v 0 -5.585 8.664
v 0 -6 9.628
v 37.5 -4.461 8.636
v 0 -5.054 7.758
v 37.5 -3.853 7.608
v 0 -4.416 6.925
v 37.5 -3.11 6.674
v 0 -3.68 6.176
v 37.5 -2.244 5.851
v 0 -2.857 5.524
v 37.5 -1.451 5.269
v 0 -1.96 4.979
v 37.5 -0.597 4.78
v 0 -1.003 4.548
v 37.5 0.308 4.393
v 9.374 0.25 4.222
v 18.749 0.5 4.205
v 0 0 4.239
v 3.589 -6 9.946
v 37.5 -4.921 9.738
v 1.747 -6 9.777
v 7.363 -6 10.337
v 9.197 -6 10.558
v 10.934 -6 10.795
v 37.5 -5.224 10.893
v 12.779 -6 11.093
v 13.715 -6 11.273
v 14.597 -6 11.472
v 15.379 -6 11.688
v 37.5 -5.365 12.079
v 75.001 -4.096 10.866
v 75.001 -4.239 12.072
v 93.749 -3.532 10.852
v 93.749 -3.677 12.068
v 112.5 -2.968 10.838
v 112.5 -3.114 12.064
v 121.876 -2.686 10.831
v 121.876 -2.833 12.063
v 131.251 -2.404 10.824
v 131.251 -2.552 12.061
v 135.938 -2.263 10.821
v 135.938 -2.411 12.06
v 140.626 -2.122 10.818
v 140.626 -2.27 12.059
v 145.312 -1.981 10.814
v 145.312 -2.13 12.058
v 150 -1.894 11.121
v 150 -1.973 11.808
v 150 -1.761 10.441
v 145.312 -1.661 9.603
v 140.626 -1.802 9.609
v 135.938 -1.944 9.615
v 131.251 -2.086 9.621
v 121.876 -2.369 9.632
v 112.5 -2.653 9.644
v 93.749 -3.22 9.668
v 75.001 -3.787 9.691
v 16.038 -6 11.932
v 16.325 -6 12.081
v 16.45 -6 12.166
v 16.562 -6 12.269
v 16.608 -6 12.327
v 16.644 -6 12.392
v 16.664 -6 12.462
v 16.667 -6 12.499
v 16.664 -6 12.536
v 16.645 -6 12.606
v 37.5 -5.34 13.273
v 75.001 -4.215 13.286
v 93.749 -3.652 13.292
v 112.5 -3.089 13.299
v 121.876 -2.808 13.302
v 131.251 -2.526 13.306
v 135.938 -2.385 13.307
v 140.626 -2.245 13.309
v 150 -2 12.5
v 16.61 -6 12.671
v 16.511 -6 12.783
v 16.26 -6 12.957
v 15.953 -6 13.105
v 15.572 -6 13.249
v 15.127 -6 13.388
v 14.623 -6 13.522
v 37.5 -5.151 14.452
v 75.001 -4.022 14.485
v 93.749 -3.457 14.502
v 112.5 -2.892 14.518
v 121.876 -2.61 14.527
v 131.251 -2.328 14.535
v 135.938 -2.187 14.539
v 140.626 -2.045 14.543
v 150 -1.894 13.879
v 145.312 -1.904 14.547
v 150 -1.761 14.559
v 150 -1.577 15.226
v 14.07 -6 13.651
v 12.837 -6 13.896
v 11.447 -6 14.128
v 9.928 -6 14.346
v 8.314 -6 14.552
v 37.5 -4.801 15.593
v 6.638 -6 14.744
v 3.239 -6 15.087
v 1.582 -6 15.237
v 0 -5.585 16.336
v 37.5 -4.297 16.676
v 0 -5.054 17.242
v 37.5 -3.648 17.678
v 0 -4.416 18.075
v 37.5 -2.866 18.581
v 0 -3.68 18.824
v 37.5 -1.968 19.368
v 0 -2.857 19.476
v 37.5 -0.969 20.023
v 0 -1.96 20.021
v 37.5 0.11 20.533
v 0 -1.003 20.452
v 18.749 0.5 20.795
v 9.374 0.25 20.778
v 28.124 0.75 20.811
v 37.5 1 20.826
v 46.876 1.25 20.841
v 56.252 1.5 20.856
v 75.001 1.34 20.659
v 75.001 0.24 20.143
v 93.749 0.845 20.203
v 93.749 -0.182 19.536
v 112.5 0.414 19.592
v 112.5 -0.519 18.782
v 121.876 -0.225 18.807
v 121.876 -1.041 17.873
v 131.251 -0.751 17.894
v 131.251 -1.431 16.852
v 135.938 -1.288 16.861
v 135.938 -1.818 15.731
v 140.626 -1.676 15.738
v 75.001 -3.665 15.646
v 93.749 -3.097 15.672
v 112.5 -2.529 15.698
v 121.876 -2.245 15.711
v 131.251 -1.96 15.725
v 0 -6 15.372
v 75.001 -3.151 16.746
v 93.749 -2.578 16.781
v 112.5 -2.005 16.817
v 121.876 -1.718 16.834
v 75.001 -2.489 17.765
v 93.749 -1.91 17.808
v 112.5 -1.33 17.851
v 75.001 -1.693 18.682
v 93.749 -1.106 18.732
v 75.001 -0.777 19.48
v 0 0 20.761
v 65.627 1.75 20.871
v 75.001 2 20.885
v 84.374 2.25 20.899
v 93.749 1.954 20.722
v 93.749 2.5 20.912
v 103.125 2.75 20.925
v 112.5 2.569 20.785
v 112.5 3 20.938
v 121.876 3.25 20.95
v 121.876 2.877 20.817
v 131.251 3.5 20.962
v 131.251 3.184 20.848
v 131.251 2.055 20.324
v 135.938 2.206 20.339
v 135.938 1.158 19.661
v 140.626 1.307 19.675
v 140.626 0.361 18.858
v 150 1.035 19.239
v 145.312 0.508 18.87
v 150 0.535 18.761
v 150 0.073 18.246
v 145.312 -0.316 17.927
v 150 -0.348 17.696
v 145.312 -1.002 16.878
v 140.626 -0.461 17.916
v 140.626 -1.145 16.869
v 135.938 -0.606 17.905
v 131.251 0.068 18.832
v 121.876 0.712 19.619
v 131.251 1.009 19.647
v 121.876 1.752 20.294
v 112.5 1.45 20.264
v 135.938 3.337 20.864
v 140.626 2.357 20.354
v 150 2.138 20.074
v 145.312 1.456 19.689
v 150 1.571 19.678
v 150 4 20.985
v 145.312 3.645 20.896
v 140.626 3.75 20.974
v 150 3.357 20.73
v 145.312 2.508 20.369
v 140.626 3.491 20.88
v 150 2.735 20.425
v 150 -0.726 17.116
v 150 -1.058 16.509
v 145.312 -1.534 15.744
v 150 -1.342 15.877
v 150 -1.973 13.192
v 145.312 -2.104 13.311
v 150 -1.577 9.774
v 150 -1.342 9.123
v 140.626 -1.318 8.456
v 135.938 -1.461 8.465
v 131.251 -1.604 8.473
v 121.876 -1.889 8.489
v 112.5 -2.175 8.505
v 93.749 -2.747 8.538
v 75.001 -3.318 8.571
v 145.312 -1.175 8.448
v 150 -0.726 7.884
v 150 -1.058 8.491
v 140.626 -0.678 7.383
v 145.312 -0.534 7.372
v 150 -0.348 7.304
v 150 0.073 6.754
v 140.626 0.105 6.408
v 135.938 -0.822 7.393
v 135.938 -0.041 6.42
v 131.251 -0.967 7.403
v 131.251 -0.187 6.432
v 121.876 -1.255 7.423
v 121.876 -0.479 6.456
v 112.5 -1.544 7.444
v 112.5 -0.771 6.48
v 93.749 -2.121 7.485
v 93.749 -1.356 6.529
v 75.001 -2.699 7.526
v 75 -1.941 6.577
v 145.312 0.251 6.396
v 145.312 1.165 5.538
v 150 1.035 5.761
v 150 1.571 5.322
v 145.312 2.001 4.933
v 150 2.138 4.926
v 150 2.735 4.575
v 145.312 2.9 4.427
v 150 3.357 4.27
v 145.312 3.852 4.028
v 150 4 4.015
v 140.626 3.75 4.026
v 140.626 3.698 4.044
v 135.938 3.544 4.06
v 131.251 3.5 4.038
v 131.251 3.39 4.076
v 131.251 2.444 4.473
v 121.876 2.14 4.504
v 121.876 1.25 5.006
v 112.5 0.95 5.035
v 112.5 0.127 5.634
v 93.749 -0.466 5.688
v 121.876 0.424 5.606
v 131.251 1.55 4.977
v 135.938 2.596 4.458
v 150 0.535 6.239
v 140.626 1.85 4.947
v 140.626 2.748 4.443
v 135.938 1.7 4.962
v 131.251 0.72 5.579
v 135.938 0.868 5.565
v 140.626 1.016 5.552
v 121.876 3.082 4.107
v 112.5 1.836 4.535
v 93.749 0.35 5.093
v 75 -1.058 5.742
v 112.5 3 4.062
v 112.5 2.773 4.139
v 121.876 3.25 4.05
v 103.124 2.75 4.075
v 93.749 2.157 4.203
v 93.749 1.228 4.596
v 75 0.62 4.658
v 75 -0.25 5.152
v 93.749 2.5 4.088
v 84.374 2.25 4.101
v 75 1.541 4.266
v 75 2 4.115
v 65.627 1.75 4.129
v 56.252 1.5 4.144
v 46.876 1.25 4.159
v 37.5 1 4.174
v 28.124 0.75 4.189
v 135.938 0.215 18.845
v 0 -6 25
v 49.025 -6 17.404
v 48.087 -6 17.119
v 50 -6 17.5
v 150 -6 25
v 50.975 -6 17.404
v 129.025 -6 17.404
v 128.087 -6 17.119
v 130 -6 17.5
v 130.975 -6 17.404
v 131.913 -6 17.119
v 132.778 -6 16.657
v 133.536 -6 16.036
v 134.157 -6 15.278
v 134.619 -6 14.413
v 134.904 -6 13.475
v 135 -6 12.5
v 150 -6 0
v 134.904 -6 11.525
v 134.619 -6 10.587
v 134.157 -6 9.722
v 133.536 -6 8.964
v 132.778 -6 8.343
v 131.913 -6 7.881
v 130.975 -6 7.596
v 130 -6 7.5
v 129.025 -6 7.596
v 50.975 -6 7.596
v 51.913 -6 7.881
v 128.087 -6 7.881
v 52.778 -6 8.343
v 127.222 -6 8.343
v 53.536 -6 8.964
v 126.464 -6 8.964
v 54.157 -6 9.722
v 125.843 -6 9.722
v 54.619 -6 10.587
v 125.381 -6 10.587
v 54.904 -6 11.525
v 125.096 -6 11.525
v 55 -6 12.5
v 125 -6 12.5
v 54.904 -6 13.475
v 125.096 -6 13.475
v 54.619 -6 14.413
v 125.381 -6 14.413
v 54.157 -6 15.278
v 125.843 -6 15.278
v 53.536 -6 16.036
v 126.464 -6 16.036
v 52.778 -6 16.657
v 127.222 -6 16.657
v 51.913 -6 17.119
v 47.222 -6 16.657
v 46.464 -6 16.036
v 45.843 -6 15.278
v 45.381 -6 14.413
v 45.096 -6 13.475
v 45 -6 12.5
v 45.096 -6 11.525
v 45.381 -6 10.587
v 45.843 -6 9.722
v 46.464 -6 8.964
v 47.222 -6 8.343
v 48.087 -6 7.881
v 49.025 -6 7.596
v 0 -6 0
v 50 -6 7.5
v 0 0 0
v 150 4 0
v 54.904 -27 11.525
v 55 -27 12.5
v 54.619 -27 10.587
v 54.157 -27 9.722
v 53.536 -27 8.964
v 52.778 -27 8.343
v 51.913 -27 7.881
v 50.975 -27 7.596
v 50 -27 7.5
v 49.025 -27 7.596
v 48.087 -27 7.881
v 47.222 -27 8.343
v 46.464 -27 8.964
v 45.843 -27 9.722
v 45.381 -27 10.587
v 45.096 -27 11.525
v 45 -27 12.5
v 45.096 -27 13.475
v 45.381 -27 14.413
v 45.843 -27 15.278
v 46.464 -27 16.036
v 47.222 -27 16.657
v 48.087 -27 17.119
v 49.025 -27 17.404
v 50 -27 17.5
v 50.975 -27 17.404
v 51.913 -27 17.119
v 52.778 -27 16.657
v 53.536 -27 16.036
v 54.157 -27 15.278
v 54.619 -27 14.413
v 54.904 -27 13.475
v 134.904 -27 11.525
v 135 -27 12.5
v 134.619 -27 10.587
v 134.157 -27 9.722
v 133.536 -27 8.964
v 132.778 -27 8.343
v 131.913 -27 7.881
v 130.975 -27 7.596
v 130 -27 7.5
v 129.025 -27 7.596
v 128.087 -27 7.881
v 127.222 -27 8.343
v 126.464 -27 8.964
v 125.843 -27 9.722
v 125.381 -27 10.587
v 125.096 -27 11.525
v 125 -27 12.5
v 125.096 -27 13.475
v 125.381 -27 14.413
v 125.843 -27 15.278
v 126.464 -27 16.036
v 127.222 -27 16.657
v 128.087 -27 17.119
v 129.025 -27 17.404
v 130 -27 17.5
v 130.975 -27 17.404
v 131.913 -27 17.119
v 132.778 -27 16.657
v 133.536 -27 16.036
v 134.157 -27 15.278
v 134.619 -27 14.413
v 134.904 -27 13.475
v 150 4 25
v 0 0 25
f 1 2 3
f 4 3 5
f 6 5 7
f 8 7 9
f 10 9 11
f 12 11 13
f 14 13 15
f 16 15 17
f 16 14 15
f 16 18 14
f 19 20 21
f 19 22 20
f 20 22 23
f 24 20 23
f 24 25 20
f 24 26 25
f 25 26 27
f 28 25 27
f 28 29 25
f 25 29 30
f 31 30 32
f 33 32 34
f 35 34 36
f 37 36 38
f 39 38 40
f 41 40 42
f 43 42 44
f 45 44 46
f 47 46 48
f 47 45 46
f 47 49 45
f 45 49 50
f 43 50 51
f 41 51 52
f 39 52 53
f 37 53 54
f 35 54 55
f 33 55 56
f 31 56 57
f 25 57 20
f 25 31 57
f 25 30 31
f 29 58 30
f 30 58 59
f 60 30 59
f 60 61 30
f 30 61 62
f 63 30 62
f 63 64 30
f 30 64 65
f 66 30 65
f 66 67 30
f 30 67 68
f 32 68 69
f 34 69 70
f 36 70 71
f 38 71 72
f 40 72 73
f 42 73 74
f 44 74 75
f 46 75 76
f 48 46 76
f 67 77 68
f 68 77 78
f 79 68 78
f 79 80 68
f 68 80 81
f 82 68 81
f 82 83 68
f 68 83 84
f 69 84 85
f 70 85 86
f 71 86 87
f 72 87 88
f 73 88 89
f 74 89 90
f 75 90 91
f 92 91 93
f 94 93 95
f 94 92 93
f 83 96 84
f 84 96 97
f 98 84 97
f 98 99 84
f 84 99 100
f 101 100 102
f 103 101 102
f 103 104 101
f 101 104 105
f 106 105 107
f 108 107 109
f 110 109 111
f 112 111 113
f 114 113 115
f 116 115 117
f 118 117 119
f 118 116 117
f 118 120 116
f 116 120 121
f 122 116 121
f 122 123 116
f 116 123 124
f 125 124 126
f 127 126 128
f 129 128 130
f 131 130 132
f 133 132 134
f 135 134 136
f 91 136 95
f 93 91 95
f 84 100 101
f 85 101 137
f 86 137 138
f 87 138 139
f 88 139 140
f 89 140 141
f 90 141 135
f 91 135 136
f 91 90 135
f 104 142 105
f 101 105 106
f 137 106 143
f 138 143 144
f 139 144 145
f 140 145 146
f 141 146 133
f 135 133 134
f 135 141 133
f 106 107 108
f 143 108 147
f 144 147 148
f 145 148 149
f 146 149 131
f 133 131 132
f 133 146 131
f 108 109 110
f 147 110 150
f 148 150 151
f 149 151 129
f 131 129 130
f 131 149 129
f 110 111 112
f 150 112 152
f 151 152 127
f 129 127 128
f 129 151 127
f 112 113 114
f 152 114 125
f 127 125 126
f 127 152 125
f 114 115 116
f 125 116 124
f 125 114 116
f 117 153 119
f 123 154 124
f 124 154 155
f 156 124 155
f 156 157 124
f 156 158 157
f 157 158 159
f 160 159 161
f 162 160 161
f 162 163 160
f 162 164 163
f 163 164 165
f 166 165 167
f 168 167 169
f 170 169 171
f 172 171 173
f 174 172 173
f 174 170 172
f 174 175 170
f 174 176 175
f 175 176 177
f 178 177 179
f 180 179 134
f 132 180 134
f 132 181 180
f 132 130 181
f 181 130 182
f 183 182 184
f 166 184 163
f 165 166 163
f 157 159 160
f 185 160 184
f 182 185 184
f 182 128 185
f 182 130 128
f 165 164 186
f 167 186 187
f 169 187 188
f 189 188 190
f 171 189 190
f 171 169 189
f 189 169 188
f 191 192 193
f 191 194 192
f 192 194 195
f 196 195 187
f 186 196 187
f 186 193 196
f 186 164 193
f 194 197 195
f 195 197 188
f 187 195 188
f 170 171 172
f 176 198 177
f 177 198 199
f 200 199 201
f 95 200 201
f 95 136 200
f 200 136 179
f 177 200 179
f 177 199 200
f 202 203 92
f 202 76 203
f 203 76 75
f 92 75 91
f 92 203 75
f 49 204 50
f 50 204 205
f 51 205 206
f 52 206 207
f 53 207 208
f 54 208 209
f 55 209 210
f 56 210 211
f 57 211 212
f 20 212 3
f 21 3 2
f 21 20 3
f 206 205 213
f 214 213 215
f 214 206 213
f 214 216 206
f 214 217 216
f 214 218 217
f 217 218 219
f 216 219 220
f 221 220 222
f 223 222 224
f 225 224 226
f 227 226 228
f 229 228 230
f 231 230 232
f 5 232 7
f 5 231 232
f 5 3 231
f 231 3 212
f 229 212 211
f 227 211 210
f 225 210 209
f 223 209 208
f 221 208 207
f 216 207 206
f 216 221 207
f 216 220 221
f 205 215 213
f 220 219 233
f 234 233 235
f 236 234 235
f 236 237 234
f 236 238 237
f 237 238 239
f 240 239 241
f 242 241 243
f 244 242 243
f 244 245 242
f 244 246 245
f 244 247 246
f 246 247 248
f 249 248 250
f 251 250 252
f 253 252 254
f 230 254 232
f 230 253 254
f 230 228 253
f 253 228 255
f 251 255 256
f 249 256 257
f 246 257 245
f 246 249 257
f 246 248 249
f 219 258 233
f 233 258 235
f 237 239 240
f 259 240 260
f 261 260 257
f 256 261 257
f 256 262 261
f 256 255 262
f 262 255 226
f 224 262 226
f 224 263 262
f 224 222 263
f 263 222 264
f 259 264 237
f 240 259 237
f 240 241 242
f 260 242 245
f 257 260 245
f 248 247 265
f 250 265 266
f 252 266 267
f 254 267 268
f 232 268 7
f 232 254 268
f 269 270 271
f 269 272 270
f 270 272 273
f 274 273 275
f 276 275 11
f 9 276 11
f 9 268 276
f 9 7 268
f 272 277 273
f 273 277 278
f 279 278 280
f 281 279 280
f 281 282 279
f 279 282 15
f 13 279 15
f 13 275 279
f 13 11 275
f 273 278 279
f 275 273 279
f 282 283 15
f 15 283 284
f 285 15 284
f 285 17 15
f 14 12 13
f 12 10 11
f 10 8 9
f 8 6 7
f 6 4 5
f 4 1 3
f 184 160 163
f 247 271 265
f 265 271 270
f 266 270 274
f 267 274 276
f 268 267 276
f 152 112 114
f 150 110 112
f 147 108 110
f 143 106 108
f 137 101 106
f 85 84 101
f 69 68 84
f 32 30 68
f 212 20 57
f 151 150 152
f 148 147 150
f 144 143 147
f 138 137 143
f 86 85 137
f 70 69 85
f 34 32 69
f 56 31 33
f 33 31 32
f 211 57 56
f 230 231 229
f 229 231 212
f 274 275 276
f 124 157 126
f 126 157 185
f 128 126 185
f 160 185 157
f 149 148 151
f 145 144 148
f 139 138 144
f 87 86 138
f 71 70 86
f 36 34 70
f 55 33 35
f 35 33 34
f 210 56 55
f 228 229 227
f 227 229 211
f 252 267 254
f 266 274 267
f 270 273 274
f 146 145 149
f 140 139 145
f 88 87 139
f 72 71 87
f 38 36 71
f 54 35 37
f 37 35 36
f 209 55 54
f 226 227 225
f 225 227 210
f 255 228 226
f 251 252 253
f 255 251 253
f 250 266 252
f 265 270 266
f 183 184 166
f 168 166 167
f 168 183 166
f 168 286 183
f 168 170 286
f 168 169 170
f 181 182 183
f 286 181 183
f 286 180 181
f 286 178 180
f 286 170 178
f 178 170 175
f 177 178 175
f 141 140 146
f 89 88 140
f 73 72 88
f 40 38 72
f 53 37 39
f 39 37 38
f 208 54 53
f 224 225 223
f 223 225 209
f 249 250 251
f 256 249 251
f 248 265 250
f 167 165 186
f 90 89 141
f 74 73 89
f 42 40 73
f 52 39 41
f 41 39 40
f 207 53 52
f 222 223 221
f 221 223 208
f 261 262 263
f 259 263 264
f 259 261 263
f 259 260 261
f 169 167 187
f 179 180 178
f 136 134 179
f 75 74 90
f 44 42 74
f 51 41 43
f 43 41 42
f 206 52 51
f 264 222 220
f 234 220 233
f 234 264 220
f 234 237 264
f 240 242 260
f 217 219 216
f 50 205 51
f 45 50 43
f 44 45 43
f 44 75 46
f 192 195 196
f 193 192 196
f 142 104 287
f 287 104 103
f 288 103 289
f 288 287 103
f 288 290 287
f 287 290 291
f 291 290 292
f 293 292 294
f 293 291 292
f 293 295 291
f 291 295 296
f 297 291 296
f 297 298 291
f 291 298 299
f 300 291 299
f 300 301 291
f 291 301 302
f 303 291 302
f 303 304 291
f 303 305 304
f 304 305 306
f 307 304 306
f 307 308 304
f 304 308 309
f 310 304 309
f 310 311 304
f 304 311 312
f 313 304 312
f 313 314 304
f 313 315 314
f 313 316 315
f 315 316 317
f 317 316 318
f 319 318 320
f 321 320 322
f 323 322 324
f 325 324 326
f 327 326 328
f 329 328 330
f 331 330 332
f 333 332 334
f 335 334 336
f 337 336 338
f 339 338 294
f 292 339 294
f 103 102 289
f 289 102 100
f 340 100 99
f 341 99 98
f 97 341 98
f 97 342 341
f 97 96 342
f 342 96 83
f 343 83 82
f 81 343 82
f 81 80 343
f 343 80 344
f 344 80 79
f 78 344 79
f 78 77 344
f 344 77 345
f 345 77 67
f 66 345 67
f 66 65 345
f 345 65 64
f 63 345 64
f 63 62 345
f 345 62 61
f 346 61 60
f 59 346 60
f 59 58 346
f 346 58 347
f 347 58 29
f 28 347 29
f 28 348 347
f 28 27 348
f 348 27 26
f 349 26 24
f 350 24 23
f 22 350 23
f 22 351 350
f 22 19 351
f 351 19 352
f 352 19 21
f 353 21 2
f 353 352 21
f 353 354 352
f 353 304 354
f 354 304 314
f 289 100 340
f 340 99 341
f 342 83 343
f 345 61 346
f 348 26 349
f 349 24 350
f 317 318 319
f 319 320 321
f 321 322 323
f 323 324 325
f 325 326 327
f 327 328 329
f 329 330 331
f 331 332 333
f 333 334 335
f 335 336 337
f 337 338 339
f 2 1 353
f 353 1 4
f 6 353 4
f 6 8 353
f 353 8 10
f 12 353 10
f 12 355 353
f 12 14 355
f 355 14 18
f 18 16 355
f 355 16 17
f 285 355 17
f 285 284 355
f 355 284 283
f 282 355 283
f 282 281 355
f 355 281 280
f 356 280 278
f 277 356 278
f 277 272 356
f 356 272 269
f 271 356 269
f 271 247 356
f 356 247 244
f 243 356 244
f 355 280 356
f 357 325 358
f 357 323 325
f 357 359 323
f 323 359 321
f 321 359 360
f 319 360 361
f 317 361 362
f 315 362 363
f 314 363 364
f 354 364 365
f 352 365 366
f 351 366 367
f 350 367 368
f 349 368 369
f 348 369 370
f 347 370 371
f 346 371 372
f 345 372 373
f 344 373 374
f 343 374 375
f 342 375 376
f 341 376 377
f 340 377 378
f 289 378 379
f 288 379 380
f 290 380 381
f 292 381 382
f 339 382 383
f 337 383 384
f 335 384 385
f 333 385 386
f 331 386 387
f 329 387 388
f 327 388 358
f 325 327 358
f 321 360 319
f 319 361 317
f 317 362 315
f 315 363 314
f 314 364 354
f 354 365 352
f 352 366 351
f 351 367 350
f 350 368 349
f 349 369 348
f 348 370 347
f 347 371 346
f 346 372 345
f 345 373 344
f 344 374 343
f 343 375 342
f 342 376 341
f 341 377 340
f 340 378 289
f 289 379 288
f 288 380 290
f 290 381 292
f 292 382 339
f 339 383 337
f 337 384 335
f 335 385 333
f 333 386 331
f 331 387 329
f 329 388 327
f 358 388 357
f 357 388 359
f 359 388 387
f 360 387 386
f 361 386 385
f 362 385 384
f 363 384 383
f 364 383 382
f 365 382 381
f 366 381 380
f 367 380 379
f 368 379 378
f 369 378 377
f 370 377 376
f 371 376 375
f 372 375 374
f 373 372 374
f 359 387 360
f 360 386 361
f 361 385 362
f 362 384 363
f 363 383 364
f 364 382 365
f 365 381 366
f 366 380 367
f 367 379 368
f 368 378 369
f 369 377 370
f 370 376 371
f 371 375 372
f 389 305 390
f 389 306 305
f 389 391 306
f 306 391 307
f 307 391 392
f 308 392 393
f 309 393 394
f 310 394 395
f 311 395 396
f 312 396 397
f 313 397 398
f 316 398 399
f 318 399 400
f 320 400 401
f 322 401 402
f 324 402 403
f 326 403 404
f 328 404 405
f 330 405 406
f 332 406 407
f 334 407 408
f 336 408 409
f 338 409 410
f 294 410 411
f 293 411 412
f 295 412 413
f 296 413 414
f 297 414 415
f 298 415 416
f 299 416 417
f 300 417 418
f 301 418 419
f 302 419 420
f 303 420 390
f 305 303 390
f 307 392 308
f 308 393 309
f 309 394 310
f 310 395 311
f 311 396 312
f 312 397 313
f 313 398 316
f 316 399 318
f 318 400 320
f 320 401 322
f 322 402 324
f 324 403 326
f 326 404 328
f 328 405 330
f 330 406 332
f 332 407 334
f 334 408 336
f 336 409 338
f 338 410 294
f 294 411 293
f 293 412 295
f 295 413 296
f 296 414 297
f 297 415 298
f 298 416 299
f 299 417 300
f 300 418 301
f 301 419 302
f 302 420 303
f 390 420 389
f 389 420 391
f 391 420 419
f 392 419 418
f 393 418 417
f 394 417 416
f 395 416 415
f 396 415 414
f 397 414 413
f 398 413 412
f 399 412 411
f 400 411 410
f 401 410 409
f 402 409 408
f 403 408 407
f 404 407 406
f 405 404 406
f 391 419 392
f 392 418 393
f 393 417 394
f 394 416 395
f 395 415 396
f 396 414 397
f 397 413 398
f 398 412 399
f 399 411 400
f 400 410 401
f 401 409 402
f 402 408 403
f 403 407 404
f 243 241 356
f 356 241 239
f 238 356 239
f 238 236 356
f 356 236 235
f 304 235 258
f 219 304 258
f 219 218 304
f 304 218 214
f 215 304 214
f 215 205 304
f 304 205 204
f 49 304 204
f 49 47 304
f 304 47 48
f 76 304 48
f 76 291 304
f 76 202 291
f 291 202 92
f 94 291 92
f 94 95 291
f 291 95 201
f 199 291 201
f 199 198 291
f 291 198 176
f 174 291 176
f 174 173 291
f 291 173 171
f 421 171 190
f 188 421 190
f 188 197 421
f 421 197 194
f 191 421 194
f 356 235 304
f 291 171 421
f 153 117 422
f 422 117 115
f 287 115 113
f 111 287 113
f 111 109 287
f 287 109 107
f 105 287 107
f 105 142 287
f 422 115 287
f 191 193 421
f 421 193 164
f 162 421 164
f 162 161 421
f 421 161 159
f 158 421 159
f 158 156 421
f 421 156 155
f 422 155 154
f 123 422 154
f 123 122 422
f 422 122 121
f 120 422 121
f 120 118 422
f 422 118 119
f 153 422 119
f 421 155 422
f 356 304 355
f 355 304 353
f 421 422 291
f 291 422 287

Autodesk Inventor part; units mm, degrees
ref_plane "YZ Plane" through (0, 0, 0) normal (1, 0, 0) x (0, 1, 0)
ref_plane "XZ Plane" through (0, 0, 0) normal (0, 1, 0) x (-1, 0, 0)
ref_plane "XY Plane" through (0, 0, 0) normal (0, 0, 1) x (1, 0, 0)
sketch "草圖1" plane through (0, 0, 0) normal (0, 0, 1) x (1, 0, 0)
  line L0 (0, 0) -> (150, 4)
  line L1 (150, 4) -> (150, -6)
  line L2 (150, -6) -> (0, -6)
  line L3 (0, -6) -> (0, 0)
  dimension "d0" = 10
  dimension "d1" = 6
  dimension "d2" = 150
extrude "擠出1" add sketch "草圖1" along normal blind 25
sketch "草圖2" plane through (0, -6, 0) normal (0, -1, 0) x (1, 0, 0)
  circle A0 centre (50, 12.5) radius 5
  circle A1 centre (130, 12.5) radius 5
  line L0 (0, 25) -> (150, 25) projected
  line L1 (150, 0) -> (150, 25) projected
  point P0 (0, 0)
  dimension "d5" = 12.5
  dimension "d6" = 10
  dimension "d7" = 10
  dimension "d8" = 80
  dimension "d9" = 20
extrude "擠出2" add sketch "草圖2" along normal blind 21
sketch "草圖3" plane through (0, -6, 0) normal (-1, 0, 0) x (0, 0, 1)
  line L0 (0, 0) -> (0, 6) construction
  line L1 (0, 0) -> (25, 0) construction
  line L2 (25, 6) -> (25, 0) construction
  line L3 (0, 6) -> (25, 6) construction
  line L4 (21, 6) -> (4, 6)
  line L5 (0, 6) -> (25, 6) projected
  arc A0 (4.2386, 6) -> (20.7614, 6) centre (12.5, 8) ccw
  dimension "d23" = 17
  dimension "d25" = 2
sketch "草圖4" plane through (150, -6, 0) normal (1, 0, 0) x (0, 0, -1)
  line L0 (-21.5, 11) -> (-3.5, 11)
  arc A0 (-21.275, 11) -> (-3.725, 11) centre (-12.5, 13) ccw
  line L1 (0, 10) -> (0, 0) projected
  dimension "d19" = 18
  dimension "d21" = 2
  dimension "d22" = 12.5
sketch "草圖5" plane through (0, 0, 25) normal (-0.0267, 0.9996, 0) x (0.9996, 0.0267, 0)
  line L0 (150.0533, 25) -> (150.0533, 0) projected
  line L1 (150.0533, 12.5) -> (0, 12.5)
  line L2 (0, 25) -> (0, 0) projected
loft "斷面混成2" cut profiles "草圖4", "草圖3"
properties part number "滑軌3"
